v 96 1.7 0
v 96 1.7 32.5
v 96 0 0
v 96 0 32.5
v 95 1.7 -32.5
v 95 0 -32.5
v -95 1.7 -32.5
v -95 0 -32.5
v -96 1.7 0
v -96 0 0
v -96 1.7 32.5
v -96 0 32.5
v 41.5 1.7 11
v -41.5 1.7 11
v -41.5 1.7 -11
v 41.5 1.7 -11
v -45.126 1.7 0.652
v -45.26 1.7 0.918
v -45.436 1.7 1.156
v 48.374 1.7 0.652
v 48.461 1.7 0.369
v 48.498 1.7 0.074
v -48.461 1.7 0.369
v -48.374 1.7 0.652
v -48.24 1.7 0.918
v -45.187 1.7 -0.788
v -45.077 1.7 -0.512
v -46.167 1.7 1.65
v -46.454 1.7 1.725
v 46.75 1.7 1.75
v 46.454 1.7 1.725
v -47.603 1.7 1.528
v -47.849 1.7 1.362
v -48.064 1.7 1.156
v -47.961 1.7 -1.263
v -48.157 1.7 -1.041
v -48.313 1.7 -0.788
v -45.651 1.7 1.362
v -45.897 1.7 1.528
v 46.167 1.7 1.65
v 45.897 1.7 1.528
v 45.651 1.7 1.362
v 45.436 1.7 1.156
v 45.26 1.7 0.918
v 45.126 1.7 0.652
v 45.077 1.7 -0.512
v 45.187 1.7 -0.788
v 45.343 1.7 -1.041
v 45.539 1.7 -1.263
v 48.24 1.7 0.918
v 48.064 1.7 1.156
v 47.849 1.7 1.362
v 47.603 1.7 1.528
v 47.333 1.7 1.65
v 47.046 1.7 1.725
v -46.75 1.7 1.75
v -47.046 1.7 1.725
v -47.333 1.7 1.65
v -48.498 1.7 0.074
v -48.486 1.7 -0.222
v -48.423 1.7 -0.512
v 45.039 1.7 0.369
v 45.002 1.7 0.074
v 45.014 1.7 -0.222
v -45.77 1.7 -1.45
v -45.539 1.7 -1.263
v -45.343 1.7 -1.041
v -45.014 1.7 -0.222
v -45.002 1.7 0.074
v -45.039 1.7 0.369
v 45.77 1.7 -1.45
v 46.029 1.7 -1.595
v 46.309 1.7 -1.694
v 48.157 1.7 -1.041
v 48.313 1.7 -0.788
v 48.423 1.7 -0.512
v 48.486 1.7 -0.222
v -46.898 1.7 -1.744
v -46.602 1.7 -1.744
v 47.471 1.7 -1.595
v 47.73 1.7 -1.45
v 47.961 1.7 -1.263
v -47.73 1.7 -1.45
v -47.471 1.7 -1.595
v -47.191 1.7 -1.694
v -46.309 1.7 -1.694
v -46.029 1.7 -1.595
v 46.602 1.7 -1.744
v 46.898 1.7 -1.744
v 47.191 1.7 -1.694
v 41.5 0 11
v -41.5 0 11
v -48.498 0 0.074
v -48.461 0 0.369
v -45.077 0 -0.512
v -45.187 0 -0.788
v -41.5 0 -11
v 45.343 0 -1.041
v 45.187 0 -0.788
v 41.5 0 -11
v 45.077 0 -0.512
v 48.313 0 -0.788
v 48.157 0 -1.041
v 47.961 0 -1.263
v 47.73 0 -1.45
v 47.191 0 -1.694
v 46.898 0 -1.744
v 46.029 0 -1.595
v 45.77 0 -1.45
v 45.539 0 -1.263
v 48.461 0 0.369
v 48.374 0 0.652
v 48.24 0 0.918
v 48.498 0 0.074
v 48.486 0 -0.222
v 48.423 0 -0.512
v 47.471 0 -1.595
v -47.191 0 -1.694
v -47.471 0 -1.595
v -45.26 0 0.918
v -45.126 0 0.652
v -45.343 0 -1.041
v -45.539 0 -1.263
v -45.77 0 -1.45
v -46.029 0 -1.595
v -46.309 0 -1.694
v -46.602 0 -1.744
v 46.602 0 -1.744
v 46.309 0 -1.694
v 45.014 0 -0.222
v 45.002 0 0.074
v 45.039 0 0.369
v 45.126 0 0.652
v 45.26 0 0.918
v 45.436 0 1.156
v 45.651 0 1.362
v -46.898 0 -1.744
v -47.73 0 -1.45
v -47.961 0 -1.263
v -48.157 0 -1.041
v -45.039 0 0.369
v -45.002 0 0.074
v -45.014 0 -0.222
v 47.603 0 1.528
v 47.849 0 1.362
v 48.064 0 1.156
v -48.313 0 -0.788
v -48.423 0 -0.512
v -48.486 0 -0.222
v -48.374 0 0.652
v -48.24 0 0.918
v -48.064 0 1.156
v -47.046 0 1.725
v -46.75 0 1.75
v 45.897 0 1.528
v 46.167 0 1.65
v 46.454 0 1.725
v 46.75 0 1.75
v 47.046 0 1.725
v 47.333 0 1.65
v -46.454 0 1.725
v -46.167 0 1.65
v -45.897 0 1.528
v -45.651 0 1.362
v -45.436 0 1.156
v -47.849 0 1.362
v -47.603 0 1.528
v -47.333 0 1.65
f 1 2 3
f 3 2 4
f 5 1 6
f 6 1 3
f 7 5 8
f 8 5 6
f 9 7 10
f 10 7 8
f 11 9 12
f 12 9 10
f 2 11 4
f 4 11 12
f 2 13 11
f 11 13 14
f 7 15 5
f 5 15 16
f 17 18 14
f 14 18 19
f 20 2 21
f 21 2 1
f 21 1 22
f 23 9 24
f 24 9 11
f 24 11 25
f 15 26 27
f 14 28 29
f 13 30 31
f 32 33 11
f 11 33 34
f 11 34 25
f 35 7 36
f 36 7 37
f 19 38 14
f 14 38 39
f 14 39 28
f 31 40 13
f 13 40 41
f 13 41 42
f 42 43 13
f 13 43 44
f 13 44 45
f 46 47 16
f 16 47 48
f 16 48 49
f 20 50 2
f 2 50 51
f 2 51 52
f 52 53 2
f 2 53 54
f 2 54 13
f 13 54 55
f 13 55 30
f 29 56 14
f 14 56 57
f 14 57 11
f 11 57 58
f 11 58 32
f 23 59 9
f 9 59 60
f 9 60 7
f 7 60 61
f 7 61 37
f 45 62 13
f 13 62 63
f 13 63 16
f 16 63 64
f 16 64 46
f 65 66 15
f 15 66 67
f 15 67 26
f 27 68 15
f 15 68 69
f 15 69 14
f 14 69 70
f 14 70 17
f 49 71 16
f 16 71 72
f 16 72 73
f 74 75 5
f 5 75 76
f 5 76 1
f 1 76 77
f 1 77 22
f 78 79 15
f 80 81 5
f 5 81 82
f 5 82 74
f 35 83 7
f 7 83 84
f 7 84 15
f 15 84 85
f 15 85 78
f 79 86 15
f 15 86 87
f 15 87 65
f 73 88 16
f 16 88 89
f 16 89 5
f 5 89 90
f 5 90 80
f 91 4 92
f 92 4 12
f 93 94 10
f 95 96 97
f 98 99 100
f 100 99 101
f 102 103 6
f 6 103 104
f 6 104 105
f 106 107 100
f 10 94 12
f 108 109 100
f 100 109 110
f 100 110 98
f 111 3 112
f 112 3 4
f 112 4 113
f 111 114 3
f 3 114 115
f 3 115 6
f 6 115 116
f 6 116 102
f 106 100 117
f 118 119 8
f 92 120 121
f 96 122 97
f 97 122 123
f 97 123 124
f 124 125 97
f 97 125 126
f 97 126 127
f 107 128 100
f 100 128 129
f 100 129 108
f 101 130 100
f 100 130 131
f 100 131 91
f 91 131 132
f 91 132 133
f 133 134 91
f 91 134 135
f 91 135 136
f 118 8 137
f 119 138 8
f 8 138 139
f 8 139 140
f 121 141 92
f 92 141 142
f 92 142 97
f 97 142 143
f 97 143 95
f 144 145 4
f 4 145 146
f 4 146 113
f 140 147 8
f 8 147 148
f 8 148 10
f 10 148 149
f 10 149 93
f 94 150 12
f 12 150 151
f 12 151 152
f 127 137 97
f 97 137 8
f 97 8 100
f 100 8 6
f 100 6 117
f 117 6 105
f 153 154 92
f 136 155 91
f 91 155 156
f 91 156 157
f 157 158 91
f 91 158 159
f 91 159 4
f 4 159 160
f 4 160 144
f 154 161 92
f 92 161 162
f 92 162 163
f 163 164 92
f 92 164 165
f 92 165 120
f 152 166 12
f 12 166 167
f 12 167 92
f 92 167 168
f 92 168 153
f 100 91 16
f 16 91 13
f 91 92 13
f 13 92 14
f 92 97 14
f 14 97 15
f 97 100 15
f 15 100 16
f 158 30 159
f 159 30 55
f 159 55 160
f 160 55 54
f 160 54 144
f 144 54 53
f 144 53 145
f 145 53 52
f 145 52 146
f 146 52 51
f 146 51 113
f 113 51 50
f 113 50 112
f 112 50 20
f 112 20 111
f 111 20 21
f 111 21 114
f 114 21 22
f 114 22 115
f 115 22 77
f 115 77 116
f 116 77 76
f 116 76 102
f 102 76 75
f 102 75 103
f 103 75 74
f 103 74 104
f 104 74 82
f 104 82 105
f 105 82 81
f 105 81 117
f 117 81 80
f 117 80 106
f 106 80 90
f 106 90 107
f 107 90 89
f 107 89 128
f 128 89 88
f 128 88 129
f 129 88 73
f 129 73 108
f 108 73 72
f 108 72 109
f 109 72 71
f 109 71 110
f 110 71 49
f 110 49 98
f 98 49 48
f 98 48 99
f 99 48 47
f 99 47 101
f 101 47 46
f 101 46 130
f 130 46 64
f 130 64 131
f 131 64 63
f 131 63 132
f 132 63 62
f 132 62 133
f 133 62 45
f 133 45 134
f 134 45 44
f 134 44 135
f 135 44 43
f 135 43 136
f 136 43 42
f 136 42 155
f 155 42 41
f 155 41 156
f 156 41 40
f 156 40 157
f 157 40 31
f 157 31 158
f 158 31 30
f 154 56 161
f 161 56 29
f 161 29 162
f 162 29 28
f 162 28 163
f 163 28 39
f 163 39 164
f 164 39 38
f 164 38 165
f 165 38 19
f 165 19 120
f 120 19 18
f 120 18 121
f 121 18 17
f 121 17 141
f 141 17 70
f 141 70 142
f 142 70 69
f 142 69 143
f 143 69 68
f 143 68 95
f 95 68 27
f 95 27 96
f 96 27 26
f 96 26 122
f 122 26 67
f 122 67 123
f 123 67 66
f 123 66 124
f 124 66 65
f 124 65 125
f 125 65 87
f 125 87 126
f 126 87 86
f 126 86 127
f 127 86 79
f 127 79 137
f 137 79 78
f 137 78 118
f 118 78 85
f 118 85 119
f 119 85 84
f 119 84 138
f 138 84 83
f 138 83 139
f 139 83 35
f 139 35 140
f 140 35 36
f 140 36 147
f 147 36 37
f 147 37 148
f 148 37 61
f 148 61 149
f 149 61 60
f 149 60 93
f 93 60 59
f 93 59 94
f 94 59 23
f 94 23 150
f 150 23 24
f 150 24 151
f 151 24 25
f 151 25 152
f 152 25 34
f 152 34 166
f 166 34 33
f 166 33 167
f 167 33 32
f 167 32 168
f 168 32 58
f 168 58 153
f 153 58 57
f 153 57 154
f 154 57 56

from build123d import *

# Parameters (mm, degrees)
BOSS_EXTRUDE1_DEPTH = 1.7
SKETCH2_R           = 1.75
SKETCH2_W           = 83
SKETCH2_H           = 22
CUT_EXTRUDE1_DEPTH  = 1.7


with BuildPart() as part:
    # Sketch1 → Boss-Extrude1 (new body)
    with BuildSketch(Plane(origin=(0, 0, 0), x_dir=(1, 0, 0), z_dir=(0, 1, 0))):
        Polygon((-96, 0), (-95, 32.5), (95, 32.5), (96, 0), (96, -32.5), (-96, -32.5), align=None)
    extrude(amount=BOSS_EXTRUDE1_DEPTH)

    # Sketch2 → Cut-Extrude1 (cut)
    with BuildSketch(Plane(origin=(0, 1.7, 0), x_dir=(1, 0, 0), z_dir=(0, 1, 0))):
        with Locations((46.75, 0)):
            Circle(SKETCH2_R)
        with Locations((-46.75, 0)):
            Circle(SKETCH2_R)
        Rectangle(SKETCH2_W, SKETCH2_H)
    extrude(amount=-CUT_EXTRUDE1_DEPTH, mode=Mode.SUBTRACT)


solid = part.part
